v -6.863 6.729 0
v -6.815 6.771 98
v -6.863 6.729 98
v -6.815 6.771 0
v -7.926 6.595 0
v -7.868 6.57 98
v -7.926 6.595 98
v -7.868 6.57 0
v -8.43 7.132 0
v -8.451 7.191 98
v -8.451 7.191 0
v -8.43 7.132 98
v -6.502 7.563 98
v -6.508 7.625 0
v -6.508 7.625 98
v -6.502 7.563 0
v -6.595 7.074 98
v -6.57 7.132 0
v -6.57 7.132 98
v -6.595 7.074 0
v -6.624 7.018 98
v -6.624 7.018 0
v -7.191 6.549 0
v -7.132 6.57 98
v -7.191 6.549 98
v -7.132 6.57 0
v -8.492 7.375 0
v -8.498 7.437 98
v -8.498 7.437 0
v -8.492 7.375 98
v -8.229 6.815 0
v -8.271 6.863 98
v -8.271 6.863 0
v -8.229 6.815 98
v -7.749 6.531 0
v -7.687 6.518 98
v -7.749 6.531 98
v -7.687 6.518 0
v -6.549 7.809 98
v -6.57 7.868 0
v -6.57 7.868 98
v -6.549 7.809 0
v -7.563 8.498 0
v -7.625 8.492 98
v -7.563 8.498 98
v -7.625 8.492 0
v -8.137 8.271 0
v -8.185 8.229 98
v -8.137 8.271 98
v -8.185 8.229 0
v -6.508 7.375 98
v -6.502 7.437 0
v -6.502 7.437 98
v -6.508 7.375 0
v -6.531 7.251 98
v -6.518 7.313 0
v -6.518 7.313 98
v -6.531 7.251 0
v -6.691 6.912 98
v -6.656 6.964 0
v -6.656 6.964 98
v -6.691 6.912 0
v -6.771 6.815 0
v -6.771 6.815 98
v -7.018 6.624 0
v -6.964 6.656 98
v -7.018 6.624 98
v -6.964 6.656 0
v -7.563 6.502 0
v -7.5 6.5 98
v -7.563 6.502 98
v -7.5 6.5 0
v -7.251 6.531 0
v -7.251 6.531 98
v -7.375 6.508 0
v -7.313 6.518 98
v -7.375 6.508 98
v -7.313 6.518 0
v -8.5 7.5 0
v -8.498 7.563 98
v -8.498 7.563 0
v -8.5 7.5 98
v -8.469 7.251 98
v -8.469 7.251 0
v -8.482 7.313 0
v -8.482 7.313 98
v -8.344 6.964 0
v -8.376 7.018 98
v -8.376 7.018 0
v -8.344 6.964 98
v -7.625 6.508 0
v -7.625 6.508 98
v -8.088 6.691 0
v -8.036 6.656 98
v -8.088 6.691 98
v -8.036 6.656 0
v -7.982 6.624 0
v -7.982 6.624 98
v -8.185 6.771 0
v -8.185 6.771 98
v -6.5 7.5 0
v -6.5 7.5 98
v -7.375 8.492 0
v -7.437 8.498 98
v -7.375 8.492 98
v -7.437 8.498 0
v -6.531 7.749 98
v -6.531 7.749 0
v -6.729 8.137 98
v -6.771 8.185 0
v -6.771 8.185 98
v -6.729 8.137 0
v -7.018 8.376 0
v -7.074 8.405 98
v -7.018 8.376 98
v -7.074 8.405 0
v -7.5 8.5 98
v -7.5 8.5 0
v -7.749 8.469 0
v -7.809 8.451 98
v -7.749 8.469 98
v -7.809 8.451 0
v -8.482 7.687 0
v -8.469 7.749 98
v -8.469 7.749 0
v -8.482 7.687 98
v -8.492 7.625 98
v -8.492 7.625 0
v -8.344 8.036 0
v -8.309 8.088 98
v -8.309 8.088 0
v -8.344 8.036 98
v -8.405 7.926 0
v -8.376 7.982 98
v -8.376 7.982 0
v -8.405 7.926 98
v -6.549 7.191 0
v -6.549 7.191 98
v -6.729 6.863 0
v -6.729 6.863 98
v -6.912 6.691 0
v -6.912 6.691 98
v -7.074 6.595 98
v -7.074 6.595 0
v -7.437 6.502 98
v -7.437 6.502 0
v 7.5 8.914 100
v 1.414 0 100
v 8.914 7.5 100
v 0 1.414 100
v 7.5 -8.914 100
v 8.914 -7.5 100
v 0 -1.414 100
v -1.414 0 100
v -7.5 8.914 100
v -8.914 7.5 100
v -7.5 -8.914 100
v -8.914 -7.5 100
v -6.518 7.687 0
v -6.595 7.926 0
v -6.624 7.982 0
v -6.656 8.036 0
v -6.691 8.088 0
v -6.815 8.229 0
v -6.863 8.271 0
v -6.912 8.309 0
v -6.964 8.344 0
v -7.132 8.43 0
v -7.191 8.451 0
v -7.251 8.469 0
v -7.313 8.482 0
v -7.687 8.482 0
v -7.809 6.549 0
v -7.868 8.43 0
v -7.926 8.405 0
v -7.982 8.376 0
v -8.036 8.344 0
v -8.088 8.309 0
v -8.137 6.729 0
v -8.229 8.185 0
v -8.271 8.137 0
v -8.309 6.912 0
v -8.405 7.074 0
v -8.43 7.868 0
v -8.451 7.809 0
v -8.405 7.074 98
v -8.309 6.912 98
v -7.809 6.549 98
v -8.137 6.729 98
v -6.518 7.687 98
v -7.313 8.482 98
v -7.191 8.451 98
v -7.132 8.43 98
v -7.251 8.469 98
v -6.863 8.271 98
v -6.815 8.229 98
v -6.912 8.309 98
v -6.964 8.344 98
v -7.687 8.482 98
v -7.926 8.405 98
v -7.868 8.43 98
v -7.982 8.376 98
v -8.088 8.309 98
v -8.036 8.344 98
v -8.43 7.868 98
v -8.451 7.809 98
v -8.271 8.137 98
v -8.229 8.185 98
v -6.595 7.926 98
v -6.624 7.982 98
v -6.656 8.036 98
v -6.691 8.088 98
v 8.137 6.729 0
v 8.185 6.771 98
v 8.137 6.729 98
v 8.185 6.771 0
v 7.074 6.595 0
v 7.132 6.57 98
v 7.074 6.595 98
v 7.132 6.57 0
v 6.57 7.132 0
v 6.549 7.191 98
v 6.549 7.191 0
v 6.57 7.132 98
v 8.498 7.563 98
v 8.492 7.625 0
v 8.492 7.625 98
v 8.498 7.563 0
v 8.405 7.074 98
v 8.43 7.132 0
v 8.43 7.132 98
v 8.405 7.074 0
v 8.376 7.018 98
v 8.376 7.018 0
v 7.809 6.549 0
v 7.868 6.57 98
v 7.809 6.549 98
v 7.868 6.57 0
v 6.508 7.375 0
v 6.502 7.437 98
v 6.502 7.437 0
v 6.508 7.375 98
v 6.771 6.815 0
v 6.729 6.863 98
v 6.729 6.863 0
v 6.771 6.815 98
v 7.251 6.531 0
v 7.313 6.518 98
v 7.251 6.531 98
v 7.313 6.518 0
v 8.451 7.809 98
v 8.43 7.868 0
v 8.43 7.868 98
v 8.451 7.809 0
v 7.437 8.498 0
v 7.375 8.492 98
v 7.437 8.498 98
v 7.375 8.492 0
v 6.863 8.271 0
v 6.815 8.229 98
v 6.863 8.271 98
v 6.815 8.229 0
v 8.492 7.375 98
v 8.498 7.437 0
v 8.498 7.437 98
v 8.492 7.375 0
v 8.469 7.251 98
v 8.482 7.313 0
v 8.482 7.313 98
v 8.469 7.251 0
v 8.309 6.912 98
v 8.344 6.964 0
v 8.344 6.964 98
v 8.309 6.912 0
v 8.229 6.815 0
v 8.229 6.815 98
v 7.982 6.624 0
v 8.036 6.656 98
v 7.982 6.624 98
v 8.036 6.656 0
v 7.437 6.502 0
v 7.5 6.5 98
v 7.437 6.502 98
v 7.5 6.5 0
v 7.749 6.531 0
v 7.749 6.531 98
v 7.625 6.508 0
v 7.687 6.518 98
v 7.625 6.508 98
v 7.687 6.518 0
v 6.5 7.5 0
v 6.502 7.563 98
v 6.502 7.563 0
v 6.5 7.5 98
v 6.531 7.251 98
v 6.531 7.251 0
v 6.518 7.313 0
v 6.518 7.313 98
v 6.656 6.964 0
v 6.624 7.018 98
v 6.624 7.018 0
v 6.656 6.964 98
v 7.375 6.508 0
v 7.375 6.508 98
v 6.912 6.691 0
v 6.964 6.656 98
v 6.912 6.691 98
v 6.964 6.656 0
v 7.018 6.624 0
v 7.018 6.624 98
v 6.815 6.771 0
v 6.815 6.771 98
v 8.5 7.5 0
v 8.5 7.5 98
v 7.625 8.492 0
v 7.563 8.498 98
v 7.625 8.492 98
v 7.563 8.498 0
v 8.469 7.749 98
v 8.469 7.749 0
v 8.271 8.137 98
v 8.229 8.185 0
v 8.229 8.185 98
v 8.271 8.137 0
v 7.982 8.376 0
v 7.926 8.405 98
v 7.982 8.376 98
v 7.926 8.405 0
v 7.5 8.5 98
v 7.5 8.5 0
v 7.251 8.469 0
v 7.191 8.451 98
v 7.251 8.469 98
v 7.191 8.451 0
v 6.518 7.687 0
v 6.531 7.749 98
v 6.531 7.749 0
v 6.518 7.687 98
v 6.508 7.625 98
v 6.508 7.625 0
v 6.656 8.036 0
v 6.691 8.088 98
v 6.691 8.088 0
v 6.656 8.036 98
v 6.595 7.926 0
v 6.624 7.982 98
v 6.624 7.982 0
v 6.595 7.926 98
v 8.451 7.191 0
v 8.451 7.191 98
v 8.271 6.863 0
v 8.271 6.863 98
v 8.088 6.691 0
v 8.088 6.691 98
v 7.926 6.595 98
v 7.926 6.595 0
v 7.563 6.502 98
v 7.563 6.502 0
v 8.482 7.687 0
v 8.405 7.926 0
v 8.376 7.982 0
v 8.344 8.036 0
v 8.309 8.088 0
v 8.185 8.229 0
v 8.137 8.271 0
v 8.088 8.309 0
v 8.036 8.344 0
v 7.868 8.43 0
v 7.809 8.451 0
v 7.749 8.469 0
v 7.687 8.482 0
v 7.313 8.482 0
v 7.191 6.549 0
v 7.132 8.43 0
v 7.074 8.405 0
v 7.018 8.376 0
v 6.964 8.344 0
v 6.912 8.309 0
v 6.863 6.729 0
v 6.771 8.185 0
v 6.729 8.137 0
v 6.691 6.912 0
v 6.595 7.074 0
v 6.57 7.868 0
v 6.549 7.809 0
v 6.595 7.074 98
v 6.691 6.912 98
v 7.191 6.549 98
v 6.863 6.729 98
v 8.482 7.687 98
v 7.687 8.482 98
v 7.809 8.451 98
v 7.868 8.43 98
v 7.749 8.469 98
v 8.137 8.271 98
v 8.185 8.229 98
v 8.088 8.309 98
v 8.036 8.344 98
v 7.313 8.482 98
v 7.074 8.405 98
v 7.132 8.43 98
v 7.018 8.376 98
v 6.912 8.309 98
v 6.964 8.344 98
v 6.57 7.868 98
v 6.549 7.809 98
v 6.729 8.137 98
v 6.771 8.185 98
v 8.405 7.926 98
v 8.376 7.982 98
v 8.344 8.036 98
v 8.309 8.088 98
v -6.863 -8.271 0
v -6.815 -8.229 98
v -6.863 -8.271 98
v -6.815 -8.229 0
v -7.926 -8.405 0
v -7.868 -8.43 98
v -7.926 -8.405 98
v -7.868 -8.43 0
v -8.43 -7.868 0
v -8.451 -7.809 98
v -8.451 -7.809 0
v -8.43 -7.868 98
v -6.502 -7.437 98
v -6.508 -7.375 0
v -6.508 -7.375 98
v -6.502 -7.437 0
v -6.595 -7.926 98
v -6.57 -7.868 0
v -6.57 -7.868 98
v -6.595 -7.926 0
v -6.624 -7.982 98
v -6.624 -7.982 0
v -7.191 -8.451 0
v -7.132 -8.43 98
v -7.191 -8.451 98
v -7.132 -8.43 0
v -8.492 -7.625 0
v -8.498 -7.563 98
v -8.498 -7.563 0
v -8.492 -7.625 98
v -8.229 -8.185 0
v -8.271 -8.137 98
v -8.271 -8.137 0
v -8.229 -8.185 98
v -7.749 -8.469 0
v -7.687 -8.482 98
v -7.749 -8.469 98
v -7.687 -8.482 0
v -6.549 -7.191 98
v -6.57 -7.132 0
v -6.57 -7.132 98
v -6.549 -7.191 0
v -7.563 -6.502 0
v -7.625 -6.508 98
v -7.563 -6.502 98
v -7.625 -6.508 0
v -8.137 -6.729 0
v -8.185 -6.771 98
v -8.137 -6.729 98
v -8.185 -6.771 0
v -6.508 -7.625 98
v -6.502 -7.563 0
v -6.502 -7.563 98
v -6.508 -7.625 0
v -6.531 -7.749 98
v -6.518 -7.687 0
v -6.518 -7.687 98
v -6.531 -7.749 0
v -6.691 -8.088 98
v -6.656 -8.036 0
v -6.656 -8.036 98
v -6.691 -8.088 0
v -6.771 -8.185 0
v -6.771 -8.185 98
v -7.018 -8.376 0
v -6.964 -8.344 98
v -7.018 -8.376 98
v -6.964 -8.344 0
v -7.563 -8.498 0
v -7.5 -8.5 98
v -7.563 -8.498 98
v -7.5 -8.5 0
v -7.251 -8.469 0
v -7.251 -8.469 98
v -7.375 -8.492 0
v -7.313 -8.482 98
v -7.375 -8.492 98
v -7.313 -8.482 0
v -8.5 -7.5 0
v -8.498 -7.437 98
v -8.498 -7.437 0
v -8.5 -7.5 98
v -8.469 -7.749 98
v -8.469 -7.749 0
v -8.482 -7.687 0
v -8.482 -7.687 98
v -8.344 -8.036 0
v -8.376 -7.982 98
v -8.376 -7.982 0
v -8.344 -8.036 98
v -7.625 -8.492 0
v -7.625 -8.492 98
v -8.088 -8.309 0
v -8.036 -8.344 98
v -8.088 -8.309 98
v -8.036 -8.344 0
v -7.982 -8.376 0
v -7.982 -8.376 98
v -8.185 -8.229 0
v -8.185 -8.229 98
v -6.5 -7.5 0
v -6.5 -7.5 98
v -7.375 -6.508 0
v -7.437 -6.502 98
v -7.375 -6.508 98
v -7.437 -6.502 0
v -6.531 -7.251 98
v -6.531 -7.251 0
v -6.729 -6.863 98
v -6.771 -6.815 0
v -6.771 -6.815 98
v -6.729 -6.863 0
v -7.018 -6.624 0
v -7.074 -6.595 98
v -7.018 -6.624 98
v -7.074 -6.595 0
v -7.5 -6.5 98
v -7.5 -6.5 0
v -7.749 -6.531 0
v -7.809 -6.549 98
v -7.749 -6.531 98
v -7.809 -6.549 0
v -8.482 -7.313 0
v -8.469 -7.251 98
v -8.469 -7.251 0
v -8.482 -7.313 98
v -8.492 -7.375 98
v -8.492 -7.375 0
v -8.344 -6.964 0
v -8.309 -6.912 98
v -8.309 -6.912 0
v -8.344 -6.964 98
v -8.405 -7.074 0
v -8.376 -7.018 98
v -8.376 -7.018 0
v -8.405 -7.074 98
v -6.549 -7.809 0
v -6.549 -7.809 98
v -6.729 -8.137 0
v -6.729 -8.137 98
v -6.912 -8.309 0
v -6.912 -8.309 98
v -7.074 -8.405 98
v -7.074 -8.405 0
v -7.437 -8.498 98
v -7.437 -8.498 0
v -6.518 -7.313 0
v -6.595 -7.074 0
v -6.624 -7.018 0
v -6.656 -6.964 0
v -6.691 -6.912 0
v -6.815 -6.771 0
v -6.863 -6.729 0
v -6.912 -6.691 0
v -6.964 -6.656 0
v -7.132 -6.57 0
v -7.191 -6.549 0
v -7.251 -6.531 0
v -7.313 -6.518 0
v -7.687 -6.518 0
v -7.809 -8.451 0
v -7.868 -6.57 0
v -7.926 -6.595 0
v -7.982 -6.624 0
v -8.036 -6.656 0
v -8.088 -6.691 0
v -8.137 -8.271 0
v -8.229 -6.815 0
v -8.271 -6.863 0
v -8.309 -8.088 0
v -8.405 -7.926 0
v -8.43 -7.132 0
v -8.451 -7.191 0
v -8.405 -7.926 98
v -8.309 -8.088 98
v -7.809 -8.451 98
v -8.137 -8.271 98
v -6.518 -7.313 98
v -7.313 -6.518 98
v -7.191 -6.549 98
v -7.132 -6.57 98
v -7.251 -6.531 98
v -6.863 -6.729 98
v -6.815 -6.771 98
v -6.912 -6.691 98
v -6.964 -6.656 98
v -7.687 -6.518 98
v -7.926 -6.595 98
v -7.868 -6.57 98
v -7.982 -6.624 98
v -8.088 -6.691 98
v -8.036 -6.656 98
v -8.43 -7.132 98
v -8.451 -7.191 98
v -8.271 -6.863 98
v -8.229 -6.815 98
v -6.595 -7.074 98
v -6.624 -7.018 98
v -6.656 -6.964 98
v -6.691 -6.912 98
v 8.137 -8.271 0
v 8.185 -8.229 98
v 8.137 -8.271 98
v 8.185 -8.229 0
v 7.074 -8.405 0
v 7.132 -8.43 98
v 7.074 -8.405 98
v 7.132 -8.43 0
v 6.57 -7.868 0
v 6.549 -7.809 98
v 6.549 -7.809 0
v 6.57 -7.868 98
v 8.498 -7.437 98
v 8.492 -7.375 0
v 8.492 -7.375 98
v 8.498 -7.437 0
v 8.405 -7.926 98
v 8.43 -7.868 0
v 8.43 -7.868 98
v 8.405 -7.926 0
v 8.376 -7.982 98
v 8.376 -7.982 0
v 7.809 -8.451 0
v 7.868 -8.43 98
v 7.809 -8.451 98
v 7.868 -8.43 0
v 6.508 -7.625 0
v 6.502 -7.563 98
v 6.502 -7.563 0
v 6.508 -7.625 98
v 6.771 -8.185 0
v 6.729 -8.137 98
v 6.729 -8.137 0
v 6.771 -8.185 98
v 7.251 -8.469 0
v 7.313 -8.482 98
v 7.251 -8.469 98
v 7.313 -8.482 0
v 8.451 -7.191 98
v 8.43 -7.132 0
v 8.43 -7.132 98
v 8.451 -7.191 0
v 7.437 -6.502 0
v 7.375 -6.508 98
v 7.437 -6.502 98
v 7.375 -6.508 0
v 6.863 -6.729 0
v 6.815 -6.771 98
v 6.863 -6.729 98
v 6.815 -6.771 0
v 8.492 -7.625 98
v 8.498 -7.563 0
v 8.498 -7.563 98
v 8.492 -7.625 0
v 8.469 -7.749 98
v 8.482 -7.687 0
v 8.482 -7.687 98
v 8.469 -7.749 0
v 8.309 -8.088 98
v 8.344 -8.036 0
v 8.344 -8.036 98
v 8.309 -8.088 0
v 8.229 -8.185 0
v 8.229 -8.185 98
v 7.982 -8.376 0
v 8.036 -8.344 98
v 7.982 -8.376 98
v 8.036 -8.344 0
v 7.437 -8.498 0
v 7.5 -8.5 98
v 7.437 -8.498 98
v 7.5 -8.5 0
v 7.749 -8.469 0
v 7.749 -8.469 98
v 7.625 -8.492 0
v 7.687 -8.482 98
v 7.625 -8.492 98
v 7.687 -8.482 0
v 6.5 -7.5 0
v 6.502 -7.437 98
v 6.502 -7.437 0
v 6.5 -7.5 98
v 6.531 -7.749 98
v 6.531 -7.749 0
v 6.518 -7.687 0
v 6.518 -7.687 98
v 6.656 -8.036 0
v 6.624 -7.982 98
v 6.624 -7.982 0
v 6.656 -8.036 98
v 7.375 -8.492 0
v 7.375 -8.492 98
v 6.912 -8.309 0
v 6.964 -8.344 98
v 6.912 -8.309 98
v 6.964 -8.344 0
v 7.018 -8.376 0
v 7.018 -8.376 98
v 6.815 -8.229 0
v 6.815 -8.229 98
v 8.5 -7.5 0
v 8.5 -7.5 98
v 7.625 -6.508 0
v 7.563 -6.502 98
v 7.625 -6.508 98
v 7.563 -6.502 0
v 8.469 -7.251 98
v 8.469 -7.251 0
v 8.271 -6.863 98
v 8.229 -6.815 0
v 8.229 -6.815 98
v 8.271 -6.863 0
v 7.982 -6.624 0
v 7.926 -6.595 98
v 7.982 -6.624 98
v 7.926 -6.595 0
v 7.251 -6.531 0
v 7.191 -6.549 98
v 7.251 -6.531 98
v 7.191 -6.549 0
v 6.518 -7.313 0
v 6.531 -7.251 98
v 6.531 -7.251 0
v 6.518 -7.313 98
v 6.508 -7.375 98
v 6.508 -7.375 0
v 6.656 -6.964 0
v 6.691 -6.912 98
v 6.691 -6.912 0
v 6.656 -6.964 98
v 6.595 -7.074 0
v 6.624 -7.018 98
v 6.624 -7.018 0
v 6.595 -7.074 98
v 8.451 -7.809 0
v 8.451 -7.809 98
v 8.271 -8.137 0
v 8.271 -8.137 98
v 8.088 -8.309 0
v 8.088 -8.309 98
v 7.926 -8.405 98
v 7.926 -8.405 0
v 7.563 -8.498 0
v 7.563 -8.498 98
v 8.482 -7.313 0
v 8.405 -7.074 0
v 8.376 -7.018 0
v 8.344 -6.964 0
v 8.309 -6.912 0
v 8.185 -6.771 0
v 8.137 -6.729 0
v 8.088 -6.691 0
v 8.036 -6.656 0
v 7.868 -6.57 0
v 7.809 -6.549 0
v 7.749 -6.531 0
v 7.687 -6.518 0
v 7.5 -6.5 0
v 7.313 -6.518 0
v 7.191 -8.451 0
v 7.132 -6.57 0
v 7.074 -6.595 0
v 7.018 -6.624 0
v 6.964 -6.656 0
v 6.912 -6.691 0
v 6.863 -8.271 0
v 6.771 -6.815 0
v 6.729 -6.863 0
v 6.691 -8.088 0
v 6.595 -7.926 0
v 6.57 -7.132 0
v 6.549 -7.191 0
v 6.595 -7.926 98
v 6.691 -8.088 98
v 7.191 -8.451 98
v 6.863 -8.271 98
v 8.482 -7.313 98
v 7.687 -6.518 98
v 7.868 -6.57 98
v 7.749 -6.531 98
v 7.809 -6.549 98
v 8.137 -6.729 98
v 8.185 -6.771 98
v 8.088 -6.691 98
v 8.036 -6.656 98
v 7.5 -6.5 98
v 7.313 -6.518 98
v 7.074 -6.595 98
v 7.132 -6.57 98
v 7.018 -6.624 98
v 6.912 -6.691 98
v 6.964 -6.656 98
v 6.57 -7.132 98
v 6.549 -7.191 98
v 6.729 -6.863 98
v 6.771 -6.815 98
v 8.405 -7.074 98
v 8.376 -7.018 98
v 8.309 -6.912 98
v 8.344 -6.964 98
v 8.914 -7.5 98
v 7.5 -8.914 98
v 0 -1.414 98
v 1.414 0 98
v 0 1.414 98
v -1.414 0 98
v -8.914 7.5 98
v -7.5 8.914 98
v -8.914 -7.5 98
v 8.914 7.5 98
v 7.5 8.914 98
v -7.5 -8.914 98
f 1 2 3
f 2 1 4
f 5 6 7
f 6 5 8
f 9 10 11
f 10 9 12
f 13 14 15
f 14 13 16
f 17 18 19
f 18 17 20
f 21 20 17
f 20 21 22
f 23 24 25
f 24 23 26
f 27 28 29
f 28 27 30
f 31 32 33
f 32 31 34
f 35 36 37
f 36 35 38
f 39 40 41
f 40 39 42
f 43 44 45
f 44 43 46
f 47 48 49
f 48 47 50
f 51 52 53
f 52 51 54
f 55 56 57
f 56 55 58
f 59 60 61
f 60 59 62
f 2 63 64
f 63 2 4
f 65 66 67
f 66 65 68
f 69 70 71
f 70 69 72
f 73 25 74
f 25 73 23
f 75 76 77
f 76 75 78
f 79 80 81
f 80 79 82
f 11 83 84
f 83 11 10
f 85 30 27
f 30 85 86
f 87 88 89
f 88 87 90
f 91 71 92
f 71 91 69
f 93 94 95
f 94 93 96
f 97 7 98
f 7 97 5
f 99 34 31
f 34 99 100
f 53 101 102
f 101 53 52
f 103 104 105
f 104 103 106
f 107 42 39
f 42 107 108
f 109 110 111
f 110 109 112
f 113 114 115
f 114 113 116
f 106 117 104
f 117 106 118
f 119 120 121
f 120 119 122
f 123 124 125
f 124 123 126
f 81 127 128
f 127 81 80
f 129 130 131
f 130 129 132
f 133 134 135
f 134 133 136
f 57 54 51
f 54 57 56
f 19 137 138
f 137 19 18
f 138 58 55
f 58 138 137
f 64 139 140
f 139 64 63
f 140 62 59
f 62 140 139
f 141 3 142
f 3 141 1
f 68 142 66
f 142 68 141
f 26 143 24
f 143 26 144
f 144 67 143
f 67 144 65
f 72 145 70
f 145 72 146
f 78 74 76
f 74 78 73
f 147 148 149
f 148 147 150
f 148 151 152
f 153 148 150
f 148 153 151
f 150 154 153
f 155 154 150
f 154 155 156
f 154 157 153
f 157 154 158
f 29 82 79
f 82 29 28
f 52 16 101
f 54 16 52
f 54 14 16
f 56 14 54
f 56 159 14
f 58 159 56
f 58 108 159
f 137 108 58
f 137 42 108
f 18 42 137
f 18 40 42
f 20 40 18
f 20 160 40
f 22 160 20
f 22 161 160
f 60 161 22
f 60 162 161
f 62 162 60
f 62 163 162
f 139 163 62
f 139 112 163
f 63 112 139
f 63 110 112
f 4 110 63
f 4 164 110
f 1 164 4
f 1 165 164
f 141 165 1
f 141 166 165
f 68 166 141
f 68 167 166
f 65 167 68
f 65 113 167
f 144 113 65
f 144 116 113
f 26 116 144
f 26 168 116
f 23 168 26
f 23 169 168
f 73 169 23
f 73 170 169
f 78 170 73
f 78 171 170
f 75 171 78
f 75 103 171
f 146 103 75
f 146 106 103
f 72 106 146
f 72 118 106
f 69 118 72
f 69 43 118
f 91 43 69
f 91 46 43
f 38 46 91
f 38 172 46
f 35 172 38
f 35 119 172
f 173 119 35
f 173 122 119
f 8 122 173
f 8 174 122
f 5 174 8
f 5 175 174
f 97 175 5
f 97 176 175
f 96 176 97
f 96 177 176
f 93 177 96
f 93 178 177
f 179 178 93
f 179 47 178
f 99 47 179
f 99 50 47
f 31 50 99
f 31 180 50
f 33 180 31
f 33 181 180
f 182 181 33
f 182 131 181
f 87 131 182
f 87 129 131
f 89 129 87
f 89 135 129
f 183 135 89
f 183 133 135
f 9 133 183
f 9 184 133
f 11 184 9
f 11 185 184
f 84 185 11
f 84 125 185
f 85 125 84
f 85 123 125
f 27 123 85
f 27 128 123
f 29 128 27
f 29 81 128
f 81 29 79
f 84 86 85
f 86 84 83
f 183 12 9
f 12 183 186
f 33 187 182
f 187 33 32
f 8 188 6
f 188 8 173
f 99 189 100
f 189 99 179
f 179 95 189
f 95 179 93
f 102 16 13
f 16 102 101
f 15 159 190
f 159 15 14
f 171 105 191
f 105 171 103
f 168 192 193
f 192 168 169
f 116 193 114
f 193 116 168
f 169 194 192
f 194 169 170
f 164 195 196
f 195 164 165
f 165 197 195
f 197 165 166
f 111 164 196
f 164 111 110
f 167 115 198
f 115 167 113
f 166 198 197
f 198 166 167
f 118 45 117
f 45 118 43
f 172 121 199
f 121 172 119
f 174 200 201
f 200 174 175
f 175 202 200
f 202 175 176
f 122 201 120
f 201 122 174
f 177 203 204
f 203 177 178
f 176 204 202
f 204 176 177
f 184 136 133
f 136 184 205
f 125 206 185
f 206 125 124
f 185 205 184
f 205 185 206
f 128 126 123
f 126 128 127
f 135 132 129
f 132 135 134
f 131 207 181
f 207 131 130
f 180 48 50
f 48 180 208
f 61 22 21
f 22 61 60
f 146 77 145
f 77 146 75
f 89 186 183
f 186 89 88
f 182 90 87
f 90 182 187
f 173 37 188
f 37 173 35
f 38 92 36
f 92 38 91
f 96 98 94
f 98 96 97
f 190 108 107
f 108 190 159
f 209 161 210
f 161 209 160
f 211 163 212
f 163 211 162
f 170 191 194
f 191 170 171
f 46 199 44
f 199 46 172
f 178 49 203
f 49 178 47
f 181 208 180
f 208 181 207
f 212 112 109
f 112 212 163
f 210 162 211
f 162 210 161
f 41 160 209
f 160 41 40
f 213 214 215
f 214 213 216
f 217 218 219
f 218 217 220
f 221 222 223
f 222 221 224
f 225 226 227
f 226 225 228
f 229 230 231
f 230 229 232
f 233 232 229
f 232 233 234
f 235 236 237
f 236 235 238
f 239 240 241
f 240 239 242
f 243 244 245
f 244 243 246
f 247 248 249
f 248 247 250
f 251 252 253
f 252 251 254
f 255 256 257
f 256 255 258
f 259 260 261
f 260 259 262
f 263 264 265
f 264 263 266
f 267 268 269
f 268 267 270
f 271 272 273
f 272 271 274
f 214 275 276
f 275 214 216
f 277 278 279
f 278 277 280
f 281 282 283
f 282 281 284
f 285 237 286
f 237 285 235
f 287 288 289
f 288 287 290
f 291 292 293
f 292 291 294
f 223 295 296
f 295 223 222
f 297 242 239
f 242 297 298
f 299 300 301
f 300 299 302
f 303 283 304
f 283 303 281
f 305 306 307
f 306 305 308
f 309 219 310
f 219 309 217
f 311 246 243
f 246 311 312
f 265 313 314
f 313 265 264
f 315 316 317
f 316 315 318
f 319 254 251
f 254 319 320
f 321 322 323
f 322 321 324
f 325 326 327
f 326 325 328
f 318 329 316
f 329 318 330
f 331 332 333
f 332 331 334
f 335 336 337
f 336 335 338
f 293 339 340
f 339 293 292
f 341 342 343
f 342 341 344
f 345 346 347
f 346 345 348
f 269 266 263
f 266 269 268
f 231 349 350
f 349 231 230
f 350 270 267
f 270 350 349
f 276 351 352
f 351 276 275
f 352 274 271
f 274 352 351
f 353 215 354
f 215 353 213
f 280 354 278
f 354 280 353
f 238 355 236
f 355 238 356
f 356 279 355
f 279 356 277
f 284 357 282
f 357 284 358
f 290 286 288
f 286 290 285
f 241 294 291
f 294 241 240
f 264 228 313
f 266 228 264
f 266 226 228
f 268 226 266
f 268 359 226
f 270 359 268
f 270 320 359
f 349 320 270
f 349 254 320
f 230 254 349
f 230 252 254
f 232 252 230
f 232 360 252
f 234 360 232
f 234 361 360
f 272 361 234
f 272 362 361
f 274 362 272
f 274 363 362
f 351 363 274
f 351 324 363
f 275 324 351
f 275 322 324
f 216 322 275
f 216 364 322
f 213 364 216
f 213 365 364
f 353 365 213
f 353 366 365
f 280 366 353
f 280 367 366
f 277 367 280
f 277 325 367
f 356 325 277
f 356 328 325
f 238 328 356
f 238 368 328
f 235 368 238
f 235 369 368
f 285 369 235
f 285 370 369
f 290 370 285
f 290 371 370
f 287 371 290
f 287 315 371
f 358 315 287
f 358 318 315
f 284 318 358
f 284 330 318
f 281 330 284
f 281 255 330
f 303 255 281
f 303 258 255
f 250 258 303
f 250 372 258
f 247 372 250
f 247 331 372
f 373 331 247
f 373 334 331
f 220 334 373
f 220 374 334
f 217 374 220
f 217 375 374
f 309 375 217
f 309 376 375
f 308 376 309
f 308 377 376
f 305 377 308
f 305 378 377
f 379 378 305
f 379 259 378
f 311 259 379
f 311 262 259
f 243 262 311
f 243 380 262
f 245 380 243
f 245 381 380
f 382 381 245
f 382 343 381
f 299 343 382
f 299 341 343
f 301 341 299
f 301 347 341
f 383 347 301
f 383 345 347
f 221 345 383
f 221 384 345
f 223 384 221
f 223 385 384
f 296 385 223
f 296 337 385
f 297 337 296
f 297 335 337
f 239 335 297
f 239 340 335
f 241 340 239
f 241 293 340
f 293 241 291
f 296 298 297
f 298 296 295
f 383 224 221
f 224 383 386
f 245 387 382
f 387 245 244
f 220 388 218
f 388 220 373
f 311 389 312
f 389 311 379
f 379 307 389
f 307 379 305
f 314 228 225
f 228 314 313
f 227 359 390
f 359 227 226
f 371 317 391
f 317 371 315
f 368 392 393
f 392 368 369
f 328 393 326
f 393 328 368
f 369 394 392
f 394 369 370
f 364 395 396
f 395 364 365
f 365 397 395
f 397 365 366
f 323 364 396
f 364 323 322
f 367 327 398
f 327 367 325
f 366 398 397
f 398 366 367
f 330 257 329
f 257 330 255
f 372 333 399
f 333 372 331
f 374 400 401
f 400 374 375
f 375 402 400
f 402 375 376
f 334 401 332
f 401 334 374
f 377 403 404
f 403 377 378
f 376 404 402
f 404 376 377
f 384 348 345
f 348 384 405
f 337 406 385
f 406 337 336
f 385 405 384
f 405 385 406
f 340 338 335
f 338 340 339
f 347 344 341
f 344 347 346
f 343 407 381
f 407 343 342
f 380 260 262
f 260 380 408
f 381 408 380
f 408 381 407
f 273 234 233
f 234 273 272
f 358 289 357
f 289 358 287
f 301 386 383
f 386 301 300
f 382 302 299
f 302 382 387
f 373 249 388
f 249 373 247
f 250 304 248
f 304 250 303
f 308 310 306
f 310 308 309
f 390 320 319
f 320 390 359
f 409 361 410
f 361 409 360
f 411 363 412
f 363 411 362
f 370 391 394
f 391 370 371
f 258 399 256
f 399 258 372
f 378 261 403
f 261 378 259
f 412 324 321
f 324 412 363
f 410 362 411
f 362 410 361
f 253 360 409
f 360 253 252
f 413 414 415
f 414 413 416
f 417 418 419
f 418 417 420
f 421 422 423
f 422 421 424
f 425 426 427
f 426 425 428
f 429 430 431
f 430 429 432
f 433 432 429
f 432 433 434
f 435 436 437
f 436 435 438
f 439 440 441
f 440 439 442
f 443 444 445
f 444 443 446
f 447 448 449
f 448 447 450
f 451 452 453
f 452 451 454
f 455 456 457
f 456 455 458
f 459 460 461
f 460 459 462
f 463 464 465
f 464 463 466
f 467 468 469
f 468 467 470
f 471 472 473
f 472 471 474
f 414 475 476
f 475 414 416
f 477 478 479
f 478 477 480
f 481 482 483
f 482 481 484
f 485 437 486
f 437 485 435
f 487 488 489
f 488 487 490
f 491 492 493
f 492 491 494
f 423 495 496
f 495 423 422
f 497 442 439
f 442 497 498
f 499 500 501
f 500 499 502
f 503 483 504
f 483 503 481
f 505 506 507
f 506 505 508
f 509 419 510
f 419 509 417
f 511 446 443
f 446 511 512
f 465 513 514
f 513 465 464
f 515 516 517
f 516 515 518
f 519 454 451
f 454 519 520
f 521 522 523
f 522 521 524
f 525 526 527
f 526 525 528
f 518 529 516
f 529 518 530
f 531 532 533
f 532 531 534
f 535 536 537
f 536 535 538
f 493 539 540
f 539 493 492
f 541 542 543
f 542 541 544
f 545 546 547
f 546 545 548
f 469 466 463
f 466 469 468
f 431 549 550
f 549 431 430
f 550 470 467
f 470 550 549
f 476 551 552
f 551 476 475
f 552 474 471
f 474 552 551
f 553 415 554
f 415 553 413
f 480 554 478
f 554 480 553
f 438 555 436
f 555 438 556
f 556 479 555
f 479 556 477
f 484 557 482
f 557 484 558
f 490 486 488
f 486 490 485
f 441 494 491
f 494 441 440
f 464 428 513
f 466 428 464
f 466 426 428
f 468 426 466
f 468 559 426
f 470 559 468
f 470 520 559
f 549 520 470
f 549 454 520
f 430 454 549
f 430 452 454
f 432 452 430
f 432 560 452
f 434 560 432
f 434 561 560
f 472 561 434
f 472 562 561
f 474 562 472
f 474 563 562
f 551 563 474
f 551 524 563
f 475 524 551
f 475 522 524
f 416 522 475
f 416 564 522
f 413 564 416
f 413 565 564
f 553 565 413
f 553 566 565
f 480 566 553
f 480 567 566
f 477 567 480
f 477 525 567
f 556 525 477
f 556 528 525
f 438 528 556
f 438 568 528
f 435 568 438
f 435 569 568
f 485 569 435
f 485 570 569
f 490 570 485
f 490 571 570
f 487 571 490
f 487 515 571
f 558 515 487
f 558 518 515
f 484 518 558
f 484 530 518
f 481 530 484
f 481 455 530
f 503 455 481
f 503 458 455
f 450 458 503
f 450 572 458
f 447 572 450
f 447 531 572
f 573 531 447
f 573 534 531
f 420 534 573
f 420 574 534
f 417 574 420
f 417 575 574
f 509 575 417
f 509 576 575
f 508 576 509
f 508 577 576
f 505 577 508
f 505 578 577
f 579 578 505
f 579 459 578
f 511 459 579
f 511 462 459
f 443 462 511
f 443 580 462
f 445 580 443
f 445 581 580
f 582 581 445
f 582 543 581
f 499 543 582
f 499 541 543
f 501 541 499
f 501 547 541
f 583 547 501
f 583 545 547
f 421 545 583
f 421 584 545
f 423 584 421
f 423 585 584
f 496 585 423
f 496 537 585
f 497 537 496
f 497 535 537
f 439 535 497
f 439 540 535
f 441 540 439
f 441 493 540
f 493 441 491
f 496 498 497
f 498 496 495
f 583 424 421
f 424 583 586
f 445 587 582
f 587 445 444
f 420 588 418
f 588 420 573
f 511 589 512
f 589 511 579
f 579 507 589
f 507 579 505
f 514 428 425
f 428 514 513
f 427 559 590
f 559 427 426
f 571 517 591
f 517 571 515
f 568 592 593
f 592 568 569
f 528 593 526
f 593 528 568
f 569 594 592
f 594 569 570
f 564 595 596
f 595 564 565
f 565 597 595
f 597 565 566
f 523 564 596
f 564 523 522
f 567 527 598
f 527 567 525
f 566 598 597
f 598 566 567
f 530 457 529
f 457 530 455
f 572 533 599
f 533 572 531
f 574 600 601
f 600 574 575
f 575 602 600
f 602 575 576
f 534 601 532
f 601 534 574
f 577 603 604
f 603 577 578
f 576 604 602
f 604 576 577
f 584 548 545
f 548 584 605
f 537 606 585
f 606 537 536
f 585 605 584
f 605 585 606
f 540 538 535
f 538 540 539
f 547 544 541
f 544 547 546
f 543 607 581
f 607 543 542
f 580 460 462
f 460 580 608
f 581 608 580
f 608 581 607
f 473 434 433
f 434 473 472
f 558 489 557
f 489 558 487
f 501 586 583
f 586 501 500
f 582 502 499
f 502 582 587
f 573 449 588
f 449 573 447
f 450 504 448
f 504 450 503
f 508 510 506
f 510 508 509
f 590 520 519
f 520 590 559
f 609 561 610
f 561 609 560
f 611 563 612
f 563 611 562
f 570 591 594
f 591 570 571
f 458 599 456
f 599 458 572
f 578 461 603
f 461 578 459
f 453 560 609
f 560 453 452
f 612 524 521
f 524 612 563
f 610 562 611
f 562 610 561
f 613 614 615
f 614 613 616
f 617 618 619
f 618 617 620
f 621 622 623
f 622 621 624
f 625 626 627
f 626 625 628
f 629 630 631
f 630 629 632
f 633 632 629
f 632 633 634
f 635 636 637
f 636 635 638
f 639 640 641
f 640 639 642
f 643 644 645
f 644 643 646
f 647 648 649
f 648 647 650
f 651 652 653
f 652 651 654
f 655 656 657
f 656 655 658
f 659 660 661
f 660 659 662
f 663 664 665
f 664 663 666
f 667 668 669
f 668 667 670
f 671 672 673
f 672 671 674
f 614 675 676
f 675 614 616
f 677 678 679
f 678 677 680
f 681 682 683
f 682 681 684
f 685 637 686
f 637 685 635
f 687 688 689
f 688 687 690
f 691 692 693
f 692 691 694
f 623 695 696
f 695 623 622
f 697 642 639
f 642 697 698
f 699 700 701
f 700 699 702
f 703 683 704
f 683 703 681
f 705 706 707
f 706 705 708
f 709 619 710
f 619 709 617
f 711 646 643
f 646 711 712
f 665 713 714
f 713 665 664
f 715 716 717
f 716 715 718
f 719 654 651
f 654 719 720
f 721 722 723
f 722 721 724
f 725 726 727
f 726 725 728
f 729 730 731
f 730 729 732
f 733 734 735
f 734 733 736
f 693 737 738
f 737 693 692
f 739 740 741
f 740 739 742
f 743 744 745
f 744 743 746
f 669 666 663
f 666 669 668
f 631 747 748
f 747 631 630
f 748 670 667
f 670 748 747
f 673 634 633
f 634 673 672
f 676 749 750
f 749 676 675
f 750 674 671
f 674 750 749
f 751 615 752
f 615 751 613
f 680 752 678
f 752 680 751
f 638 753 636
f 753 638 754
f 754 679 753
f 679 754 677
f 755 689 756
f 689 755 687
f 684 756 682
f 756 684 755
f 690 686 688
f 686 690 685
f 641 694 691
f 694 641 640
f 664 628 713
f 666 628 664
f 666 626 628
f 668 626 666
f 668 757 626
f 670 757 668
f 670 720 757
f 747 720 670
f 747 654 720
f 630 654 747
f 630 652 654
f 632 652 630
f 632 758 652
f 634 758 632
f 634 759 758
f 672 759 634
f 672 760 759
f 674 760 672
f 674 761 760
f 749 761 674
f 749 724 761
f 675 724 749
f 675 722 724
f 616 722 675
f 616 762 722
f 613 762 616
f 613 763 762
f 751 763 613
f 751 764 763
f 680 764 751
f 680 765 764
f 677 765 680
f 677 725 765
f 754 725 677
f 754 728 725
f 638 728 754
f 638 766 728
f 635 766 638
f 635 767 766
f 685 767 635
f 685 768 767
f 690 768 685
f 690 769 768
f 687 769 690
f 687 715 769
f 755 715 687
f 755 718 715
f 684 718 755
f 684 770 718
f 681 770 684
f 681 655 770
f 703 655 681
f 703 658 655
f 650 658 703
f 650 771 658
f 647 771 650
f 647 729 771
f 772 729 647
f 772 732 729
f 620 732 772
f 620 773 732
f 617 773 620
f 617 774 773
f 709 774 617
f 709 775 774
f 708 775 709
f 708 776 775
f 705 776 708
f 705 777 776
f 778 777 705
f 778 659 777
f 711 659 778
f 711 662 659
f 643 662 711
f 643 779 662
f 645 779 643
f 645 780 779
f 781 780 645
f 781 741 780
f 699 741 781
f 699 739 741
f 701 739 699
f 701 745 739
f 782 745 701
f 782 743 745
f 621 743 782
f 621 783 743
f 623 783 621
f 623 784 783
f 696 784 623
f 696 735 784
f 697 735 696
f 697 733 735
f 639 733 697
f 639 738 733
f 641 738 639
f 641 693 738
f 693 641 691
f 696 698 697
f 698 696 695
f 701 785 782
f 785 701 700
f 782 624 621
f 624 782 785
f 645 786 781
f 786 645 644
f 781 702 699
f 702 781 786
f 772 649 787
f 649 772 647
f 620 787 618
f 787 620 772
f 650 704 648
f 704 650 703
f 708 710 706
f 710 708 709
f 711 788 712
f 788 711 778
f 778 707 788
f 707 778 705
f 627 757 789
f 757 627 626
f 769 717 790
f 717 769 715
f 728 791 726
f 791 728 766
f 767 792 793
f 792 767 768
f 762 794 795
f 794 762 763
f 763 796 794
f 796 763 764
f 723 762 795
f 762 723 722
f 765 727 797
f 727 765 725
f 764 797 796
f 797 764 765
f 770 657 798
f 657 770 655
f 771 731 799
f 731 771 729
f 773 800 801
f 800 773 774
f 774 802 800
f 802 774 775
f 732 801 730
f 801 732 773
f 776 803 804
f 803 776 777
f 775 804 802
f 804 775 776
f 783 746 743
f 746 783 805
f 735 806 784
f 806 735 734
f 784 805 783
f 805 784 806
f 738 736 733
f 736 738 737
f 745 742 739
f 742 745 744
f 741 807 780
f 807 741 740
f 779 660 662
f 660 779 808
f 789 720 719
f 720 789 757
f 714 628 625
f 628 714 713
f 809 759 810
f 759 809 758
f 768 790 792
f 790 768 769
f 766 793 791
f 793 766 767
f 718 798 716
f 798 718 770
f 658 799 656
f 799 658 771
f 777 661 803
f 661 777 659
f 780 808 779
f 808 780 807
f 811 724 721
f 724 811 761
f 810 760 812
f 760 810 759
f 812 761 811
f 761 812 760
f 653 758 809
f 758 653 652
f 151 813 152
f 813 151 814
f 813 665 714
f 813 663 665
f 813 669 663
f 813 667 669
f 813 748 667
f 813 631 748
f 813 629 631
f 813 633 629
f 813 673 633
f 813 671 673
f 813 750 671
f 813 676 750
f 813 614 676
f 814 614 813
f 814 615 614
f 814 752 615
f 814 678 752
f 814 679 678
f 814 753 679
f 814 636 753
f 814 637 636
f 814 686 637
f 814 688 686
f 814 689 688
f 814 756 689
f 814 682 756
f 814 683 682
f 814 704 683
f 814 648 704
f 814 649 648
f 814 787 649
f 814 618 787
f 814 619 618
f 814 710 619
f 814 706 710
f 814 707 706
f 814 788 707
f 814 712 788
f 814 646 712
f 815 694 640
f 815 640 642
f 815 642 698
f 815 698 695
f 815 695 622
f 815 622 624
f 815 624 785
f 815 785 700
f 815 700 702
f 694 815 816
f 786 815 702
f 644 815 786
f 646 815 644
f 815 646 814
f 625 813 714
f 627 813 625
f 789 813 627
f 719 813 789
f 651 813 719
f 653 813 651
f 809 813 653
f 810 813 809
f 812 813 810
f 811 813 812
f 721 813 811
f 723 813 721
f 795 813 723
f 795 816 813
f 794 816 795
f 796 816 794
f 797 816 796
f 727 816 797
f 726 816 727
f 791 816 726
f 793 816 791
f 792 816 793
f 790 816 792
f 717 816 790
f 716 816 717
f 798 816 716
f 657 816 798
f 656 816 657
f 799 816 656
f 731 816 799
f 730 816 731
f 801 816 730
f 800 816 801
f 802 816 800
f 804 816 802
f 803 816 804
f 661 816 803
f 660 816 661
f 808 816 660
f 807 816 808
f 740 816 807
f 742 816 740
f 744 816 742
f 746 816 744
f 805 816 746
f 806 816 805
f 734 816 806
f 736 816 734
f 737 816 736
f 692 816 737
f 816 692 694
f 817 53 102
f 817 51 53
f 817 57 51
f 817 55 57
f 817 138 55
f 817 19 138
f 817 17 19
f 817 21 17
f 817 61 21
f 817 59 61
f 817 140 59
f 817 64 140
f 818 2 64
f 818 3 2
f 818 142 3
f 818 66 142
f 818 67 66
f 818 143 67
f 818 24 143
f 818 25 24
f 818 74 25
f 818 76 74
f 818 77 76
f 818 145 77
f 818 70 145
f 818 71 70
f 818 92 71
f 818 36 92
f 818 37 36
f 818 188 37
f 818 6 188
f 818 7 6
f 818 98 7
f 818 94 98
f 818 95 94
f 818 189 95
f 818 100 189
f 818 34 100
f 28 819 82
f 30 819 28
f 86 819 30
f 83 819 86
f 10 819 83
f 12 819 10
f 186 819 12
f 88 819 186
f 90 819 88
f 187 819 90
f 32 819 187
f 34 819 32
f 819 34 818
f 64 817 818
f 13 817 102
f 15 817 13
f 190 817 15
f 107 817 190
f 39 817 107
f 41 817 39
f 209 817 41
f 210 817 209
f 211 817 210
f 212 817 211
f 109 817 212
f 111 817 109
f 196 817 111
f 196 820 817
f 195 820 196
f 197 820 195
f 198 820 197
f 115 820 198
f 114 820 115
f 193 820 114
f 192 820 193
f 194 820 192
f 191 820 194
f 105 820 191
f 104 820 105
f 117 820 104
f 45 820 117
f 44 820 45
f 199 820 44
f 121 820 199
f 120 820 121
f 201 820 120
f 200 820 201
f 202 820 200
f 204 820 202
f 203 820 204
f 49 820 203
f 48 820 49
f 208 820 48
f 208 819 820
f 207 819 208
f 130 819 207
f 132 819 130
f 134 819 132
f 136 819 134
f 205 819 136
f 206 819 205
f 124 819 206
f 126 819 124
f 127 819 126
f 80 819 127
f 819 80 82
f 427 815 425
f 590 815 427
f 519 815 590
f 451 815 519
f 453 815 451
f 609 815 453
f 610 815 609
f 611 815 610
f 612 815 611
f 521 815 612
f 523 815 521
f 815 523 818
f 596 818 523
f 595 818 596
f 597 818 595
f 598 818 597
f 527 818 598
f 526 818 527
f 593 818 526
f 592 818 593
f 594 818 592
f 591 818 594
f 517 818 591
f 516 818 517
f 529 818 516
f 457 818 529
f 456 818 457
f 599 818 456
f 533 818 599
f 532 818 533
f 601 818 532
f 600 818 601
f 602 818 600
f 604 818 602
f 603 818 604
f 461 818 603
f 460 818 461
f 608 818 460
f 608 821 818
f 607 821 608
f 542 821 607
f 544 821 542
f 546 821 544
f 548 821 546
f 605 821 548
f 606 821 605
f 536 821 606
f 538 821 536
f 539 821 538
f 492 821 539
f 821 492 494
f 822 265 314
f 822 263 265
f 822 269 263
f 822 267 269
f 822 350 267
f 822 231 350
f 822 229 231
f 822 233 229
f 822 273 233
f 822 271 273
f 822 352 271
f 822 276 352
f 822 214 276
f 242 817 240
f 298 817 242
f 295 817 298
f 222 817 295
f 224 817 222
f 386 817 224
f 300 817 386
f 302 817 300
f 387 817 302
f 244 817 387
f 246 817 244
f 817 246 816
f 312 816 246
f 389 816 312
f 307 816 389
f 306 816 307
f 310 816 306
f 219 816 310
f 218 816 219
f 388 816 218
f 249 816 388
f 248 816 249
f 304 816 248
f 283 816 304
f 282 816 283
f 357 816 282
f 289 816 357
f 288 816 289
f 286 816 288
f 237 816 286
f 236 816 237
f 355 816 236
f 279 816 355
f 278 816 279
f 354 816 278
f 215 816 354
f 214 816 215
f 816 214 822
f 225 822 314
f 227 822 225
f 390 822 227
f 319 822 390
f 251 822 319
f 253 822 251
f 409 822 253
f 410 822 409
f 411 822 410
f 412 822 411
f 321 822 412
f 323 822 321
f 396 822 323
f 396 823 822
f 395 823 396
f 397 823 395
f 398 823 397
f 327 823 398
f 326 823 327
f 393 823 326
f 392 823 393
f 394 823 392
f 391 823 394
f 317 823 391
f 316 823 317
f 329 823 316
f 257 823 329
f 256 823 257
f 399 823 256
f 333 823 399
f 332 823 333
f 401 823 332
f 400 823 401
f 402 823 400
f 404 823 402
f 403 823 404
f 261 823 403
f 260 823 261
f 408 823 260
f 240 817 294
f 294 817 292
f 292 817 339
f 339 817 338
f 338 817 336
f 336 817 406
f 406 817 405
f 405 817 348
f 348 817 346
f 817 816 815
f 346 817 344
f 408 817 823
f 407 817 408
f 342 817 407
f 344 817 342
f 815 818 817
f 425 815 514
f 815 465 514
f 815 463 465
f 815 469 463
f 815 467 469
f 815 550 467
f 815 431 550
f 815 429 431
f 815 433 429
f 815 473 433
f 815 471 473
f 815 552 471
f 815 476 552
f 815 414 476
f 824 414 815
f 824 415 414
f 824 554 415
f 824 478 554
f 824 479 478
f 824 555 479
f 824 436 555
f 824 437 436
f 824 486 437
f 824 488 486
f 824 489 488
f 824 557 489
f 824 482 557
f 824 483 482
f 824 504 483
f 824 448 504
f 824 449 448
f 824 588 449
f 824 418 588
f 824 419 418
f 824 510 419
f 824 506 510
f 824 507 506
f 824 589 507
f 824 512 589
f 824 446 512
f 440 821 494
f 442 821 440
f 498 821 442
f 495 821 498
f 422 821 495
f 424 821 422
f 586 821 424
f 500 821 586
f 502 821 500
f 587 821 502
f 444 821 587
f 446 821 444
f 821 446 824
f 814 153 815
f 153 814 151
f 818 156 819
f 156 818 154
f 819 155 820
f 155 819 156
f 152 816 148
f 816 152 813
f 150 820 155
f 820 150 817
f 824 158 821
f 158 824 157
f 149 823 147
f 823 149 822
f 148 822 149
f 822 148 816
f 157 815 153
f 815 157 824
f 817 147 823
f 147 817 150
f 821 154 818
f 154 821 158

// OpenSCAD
piezoDiameter  = 12;
clearanceWidth = 1.5;
piezoHeight    = 0.5;    // ! be careful about 3D printer resolution
dr             = 0.6;
deps           = 0.1;
cubeHeight     = 10; 
sphereFn       = 100;
circleFn       = 100;
holeSize       = 2;
stickRadius    = 1;
stickThickness = 2;
heightRadius   = 100;

// debug purposes 
renderBase     = false;

piezoRadius = piezoDiameter / 2.;
cubeWidth  = 2 * piezoDiameter + 4 * clearanceWidth;
TriangleSize = cubeWidth - 2 * (piezoRadius + clearanceWidth) + 2 * stickRadius;
distance = sqrt(2) * (TriangleSize) + 2 * stickRadius * ( 1 - sqrt(2));


module drawStick()
{
 union()
{
translate([-piezoRadius - clearanceWidth,
           -piezoRadius - clearanceWidth, 0])
union()
{
translate([piezoRadius + clearanceWidth, 
           piezoRadius + clearanceWidth, 0])
cylinder(r=stickRadius, h=heightRadius, $fn=100);
translate([cubeWidth - (piezoRadius + clearanceWidth), 
           piezoRadius + clearanceWidth, 0])
cylinder(r=stickRadius, h=heightRadius, $fn=100);
translate([(piezoRadius + clearanceWidth), 
           cubeWidth - (piezoRadius + clearanceWidth), 0])
cylinder(r=stickRadius, h=heightRadius, $fn=100);
translate([cubeWidth - (piezoRadius + clearanceWidth), 
           cubeWidth - (piezoRadius + clearanceWidth), 0])
cylinder(r=stickRadius, h=heightRadius, $fn=100);
}

rotate(45, [0,0,1])
translate([-stickRadius, -stickRadius, 0])
cube([distance,2 * stickRadius, stickThickness]);

translate([0, TriangleSize - 2 * stickRadius,0])
rotate(-45, [0,0,1])
translate([-stickRadius, -stickRadius, 0])
cube([distance,2 * stickRadius, stickThickness]);
}   
}

module drawBase()
{
difference()
{
    cube([cubeWidth, cubeWidth,cubeHeight]);
    
  union()
  {


    union()
    {
    translate([clearanceWidth + piezoRadius,
               clearanceWidth + piezoRadius,
               cubeHeight])
    union()
    {
        sphere(r=piezoRadius-dr, $fn=sphereFn);
        translate([0,-0,-piezoHeight])
        cylinder(r=piezoRadius, h=piezoHeight + deps, $fn=sphereFn);
    }
    translate([cubeWidth - clearanceWidth - piezoRadius,
               clearanceWidth + piezoRadius,
               cubeHeight])
    union()
    {
        sphere(r=piezoRadius-dr, $fn=sphereFn);
        translate([0,-0,-piezoHeight])
        cylinder(r=piezoRadius, h=piezoHeight + deps, $fn=sphereFn);
    }
    translate([clearanceWidth + piezoRadius,
               cubeWidth - clearanceWidth - piezoRadius,
               cubeHeight])
    union()
    {
        sphere(r=piezoRadius-dr, $fn=sphereFn);
        translate([0,-0,-piezoHeight])
        cylinder(r=piezoRadius, h=piezoHeight + deps, $fn=sphereFn);
    }
    
    translate([cubeWidth - clearanceWidth - piezoRadius,
               cubeWidth - clearanceWidth - piezoRadius,
               cubeHeight])
    union()
    {
        sphere(r=piezoRadius-dr, $fn=sphereFn);
        translate([0,-0,-piezoHeight])
        cylinder(r=piezoRadius, h=piezoHeight + deps, $fn=sphereFn);
    }

    
    }
    
    
    

    union()
    {
    translate([piezoRadius+clearanceWidth-holeSize/2, 
               -deps, 
               -holeSize + cubeHeight + deps])
    cube([holeSize, cubeWidth+2*deps, holeSize]);
    translate([cubeWidth-holeSize/2-piezoRadius-clearanceWidth, 
               -deps, 
               -holeSize + cubeHeight + deps])
    cube([holeSize, cubeWidth+2*deps, holeSize]);

        
    
    translate([-deps,
               piezoRadius+clearanceWidth-holeSize/2,  
               -holeSize + cubeHeight + deps])
    cube([cubeWidth+2*deps,holeSize, holeSize]);
    translate([-deps,
               cubeWidth-holeSize/2-piezoRadius-clearanceWidth, 
               -holeSize + cubeHeight + deps])
    cube([cubeWidth+2*deps,holeSize, holeSize]);   

    }
  } 
}
}











if (renderBase)
{
    drawBase();
    
    translate([cubeWidth/2,cubeWidth/2,0])
    rotate(180, [1,0,0])
    translate([-TriangleSize/2+stickRadius,-TriangleSize/2+stickRadius,-100])
    drawStick();
}
else
{
    rotate(180, [1,0,0])
    translate([-TriangleSize/2+stickRadius,-TriangleSize/2+stickRadius,-100])
    drawStick();
}
